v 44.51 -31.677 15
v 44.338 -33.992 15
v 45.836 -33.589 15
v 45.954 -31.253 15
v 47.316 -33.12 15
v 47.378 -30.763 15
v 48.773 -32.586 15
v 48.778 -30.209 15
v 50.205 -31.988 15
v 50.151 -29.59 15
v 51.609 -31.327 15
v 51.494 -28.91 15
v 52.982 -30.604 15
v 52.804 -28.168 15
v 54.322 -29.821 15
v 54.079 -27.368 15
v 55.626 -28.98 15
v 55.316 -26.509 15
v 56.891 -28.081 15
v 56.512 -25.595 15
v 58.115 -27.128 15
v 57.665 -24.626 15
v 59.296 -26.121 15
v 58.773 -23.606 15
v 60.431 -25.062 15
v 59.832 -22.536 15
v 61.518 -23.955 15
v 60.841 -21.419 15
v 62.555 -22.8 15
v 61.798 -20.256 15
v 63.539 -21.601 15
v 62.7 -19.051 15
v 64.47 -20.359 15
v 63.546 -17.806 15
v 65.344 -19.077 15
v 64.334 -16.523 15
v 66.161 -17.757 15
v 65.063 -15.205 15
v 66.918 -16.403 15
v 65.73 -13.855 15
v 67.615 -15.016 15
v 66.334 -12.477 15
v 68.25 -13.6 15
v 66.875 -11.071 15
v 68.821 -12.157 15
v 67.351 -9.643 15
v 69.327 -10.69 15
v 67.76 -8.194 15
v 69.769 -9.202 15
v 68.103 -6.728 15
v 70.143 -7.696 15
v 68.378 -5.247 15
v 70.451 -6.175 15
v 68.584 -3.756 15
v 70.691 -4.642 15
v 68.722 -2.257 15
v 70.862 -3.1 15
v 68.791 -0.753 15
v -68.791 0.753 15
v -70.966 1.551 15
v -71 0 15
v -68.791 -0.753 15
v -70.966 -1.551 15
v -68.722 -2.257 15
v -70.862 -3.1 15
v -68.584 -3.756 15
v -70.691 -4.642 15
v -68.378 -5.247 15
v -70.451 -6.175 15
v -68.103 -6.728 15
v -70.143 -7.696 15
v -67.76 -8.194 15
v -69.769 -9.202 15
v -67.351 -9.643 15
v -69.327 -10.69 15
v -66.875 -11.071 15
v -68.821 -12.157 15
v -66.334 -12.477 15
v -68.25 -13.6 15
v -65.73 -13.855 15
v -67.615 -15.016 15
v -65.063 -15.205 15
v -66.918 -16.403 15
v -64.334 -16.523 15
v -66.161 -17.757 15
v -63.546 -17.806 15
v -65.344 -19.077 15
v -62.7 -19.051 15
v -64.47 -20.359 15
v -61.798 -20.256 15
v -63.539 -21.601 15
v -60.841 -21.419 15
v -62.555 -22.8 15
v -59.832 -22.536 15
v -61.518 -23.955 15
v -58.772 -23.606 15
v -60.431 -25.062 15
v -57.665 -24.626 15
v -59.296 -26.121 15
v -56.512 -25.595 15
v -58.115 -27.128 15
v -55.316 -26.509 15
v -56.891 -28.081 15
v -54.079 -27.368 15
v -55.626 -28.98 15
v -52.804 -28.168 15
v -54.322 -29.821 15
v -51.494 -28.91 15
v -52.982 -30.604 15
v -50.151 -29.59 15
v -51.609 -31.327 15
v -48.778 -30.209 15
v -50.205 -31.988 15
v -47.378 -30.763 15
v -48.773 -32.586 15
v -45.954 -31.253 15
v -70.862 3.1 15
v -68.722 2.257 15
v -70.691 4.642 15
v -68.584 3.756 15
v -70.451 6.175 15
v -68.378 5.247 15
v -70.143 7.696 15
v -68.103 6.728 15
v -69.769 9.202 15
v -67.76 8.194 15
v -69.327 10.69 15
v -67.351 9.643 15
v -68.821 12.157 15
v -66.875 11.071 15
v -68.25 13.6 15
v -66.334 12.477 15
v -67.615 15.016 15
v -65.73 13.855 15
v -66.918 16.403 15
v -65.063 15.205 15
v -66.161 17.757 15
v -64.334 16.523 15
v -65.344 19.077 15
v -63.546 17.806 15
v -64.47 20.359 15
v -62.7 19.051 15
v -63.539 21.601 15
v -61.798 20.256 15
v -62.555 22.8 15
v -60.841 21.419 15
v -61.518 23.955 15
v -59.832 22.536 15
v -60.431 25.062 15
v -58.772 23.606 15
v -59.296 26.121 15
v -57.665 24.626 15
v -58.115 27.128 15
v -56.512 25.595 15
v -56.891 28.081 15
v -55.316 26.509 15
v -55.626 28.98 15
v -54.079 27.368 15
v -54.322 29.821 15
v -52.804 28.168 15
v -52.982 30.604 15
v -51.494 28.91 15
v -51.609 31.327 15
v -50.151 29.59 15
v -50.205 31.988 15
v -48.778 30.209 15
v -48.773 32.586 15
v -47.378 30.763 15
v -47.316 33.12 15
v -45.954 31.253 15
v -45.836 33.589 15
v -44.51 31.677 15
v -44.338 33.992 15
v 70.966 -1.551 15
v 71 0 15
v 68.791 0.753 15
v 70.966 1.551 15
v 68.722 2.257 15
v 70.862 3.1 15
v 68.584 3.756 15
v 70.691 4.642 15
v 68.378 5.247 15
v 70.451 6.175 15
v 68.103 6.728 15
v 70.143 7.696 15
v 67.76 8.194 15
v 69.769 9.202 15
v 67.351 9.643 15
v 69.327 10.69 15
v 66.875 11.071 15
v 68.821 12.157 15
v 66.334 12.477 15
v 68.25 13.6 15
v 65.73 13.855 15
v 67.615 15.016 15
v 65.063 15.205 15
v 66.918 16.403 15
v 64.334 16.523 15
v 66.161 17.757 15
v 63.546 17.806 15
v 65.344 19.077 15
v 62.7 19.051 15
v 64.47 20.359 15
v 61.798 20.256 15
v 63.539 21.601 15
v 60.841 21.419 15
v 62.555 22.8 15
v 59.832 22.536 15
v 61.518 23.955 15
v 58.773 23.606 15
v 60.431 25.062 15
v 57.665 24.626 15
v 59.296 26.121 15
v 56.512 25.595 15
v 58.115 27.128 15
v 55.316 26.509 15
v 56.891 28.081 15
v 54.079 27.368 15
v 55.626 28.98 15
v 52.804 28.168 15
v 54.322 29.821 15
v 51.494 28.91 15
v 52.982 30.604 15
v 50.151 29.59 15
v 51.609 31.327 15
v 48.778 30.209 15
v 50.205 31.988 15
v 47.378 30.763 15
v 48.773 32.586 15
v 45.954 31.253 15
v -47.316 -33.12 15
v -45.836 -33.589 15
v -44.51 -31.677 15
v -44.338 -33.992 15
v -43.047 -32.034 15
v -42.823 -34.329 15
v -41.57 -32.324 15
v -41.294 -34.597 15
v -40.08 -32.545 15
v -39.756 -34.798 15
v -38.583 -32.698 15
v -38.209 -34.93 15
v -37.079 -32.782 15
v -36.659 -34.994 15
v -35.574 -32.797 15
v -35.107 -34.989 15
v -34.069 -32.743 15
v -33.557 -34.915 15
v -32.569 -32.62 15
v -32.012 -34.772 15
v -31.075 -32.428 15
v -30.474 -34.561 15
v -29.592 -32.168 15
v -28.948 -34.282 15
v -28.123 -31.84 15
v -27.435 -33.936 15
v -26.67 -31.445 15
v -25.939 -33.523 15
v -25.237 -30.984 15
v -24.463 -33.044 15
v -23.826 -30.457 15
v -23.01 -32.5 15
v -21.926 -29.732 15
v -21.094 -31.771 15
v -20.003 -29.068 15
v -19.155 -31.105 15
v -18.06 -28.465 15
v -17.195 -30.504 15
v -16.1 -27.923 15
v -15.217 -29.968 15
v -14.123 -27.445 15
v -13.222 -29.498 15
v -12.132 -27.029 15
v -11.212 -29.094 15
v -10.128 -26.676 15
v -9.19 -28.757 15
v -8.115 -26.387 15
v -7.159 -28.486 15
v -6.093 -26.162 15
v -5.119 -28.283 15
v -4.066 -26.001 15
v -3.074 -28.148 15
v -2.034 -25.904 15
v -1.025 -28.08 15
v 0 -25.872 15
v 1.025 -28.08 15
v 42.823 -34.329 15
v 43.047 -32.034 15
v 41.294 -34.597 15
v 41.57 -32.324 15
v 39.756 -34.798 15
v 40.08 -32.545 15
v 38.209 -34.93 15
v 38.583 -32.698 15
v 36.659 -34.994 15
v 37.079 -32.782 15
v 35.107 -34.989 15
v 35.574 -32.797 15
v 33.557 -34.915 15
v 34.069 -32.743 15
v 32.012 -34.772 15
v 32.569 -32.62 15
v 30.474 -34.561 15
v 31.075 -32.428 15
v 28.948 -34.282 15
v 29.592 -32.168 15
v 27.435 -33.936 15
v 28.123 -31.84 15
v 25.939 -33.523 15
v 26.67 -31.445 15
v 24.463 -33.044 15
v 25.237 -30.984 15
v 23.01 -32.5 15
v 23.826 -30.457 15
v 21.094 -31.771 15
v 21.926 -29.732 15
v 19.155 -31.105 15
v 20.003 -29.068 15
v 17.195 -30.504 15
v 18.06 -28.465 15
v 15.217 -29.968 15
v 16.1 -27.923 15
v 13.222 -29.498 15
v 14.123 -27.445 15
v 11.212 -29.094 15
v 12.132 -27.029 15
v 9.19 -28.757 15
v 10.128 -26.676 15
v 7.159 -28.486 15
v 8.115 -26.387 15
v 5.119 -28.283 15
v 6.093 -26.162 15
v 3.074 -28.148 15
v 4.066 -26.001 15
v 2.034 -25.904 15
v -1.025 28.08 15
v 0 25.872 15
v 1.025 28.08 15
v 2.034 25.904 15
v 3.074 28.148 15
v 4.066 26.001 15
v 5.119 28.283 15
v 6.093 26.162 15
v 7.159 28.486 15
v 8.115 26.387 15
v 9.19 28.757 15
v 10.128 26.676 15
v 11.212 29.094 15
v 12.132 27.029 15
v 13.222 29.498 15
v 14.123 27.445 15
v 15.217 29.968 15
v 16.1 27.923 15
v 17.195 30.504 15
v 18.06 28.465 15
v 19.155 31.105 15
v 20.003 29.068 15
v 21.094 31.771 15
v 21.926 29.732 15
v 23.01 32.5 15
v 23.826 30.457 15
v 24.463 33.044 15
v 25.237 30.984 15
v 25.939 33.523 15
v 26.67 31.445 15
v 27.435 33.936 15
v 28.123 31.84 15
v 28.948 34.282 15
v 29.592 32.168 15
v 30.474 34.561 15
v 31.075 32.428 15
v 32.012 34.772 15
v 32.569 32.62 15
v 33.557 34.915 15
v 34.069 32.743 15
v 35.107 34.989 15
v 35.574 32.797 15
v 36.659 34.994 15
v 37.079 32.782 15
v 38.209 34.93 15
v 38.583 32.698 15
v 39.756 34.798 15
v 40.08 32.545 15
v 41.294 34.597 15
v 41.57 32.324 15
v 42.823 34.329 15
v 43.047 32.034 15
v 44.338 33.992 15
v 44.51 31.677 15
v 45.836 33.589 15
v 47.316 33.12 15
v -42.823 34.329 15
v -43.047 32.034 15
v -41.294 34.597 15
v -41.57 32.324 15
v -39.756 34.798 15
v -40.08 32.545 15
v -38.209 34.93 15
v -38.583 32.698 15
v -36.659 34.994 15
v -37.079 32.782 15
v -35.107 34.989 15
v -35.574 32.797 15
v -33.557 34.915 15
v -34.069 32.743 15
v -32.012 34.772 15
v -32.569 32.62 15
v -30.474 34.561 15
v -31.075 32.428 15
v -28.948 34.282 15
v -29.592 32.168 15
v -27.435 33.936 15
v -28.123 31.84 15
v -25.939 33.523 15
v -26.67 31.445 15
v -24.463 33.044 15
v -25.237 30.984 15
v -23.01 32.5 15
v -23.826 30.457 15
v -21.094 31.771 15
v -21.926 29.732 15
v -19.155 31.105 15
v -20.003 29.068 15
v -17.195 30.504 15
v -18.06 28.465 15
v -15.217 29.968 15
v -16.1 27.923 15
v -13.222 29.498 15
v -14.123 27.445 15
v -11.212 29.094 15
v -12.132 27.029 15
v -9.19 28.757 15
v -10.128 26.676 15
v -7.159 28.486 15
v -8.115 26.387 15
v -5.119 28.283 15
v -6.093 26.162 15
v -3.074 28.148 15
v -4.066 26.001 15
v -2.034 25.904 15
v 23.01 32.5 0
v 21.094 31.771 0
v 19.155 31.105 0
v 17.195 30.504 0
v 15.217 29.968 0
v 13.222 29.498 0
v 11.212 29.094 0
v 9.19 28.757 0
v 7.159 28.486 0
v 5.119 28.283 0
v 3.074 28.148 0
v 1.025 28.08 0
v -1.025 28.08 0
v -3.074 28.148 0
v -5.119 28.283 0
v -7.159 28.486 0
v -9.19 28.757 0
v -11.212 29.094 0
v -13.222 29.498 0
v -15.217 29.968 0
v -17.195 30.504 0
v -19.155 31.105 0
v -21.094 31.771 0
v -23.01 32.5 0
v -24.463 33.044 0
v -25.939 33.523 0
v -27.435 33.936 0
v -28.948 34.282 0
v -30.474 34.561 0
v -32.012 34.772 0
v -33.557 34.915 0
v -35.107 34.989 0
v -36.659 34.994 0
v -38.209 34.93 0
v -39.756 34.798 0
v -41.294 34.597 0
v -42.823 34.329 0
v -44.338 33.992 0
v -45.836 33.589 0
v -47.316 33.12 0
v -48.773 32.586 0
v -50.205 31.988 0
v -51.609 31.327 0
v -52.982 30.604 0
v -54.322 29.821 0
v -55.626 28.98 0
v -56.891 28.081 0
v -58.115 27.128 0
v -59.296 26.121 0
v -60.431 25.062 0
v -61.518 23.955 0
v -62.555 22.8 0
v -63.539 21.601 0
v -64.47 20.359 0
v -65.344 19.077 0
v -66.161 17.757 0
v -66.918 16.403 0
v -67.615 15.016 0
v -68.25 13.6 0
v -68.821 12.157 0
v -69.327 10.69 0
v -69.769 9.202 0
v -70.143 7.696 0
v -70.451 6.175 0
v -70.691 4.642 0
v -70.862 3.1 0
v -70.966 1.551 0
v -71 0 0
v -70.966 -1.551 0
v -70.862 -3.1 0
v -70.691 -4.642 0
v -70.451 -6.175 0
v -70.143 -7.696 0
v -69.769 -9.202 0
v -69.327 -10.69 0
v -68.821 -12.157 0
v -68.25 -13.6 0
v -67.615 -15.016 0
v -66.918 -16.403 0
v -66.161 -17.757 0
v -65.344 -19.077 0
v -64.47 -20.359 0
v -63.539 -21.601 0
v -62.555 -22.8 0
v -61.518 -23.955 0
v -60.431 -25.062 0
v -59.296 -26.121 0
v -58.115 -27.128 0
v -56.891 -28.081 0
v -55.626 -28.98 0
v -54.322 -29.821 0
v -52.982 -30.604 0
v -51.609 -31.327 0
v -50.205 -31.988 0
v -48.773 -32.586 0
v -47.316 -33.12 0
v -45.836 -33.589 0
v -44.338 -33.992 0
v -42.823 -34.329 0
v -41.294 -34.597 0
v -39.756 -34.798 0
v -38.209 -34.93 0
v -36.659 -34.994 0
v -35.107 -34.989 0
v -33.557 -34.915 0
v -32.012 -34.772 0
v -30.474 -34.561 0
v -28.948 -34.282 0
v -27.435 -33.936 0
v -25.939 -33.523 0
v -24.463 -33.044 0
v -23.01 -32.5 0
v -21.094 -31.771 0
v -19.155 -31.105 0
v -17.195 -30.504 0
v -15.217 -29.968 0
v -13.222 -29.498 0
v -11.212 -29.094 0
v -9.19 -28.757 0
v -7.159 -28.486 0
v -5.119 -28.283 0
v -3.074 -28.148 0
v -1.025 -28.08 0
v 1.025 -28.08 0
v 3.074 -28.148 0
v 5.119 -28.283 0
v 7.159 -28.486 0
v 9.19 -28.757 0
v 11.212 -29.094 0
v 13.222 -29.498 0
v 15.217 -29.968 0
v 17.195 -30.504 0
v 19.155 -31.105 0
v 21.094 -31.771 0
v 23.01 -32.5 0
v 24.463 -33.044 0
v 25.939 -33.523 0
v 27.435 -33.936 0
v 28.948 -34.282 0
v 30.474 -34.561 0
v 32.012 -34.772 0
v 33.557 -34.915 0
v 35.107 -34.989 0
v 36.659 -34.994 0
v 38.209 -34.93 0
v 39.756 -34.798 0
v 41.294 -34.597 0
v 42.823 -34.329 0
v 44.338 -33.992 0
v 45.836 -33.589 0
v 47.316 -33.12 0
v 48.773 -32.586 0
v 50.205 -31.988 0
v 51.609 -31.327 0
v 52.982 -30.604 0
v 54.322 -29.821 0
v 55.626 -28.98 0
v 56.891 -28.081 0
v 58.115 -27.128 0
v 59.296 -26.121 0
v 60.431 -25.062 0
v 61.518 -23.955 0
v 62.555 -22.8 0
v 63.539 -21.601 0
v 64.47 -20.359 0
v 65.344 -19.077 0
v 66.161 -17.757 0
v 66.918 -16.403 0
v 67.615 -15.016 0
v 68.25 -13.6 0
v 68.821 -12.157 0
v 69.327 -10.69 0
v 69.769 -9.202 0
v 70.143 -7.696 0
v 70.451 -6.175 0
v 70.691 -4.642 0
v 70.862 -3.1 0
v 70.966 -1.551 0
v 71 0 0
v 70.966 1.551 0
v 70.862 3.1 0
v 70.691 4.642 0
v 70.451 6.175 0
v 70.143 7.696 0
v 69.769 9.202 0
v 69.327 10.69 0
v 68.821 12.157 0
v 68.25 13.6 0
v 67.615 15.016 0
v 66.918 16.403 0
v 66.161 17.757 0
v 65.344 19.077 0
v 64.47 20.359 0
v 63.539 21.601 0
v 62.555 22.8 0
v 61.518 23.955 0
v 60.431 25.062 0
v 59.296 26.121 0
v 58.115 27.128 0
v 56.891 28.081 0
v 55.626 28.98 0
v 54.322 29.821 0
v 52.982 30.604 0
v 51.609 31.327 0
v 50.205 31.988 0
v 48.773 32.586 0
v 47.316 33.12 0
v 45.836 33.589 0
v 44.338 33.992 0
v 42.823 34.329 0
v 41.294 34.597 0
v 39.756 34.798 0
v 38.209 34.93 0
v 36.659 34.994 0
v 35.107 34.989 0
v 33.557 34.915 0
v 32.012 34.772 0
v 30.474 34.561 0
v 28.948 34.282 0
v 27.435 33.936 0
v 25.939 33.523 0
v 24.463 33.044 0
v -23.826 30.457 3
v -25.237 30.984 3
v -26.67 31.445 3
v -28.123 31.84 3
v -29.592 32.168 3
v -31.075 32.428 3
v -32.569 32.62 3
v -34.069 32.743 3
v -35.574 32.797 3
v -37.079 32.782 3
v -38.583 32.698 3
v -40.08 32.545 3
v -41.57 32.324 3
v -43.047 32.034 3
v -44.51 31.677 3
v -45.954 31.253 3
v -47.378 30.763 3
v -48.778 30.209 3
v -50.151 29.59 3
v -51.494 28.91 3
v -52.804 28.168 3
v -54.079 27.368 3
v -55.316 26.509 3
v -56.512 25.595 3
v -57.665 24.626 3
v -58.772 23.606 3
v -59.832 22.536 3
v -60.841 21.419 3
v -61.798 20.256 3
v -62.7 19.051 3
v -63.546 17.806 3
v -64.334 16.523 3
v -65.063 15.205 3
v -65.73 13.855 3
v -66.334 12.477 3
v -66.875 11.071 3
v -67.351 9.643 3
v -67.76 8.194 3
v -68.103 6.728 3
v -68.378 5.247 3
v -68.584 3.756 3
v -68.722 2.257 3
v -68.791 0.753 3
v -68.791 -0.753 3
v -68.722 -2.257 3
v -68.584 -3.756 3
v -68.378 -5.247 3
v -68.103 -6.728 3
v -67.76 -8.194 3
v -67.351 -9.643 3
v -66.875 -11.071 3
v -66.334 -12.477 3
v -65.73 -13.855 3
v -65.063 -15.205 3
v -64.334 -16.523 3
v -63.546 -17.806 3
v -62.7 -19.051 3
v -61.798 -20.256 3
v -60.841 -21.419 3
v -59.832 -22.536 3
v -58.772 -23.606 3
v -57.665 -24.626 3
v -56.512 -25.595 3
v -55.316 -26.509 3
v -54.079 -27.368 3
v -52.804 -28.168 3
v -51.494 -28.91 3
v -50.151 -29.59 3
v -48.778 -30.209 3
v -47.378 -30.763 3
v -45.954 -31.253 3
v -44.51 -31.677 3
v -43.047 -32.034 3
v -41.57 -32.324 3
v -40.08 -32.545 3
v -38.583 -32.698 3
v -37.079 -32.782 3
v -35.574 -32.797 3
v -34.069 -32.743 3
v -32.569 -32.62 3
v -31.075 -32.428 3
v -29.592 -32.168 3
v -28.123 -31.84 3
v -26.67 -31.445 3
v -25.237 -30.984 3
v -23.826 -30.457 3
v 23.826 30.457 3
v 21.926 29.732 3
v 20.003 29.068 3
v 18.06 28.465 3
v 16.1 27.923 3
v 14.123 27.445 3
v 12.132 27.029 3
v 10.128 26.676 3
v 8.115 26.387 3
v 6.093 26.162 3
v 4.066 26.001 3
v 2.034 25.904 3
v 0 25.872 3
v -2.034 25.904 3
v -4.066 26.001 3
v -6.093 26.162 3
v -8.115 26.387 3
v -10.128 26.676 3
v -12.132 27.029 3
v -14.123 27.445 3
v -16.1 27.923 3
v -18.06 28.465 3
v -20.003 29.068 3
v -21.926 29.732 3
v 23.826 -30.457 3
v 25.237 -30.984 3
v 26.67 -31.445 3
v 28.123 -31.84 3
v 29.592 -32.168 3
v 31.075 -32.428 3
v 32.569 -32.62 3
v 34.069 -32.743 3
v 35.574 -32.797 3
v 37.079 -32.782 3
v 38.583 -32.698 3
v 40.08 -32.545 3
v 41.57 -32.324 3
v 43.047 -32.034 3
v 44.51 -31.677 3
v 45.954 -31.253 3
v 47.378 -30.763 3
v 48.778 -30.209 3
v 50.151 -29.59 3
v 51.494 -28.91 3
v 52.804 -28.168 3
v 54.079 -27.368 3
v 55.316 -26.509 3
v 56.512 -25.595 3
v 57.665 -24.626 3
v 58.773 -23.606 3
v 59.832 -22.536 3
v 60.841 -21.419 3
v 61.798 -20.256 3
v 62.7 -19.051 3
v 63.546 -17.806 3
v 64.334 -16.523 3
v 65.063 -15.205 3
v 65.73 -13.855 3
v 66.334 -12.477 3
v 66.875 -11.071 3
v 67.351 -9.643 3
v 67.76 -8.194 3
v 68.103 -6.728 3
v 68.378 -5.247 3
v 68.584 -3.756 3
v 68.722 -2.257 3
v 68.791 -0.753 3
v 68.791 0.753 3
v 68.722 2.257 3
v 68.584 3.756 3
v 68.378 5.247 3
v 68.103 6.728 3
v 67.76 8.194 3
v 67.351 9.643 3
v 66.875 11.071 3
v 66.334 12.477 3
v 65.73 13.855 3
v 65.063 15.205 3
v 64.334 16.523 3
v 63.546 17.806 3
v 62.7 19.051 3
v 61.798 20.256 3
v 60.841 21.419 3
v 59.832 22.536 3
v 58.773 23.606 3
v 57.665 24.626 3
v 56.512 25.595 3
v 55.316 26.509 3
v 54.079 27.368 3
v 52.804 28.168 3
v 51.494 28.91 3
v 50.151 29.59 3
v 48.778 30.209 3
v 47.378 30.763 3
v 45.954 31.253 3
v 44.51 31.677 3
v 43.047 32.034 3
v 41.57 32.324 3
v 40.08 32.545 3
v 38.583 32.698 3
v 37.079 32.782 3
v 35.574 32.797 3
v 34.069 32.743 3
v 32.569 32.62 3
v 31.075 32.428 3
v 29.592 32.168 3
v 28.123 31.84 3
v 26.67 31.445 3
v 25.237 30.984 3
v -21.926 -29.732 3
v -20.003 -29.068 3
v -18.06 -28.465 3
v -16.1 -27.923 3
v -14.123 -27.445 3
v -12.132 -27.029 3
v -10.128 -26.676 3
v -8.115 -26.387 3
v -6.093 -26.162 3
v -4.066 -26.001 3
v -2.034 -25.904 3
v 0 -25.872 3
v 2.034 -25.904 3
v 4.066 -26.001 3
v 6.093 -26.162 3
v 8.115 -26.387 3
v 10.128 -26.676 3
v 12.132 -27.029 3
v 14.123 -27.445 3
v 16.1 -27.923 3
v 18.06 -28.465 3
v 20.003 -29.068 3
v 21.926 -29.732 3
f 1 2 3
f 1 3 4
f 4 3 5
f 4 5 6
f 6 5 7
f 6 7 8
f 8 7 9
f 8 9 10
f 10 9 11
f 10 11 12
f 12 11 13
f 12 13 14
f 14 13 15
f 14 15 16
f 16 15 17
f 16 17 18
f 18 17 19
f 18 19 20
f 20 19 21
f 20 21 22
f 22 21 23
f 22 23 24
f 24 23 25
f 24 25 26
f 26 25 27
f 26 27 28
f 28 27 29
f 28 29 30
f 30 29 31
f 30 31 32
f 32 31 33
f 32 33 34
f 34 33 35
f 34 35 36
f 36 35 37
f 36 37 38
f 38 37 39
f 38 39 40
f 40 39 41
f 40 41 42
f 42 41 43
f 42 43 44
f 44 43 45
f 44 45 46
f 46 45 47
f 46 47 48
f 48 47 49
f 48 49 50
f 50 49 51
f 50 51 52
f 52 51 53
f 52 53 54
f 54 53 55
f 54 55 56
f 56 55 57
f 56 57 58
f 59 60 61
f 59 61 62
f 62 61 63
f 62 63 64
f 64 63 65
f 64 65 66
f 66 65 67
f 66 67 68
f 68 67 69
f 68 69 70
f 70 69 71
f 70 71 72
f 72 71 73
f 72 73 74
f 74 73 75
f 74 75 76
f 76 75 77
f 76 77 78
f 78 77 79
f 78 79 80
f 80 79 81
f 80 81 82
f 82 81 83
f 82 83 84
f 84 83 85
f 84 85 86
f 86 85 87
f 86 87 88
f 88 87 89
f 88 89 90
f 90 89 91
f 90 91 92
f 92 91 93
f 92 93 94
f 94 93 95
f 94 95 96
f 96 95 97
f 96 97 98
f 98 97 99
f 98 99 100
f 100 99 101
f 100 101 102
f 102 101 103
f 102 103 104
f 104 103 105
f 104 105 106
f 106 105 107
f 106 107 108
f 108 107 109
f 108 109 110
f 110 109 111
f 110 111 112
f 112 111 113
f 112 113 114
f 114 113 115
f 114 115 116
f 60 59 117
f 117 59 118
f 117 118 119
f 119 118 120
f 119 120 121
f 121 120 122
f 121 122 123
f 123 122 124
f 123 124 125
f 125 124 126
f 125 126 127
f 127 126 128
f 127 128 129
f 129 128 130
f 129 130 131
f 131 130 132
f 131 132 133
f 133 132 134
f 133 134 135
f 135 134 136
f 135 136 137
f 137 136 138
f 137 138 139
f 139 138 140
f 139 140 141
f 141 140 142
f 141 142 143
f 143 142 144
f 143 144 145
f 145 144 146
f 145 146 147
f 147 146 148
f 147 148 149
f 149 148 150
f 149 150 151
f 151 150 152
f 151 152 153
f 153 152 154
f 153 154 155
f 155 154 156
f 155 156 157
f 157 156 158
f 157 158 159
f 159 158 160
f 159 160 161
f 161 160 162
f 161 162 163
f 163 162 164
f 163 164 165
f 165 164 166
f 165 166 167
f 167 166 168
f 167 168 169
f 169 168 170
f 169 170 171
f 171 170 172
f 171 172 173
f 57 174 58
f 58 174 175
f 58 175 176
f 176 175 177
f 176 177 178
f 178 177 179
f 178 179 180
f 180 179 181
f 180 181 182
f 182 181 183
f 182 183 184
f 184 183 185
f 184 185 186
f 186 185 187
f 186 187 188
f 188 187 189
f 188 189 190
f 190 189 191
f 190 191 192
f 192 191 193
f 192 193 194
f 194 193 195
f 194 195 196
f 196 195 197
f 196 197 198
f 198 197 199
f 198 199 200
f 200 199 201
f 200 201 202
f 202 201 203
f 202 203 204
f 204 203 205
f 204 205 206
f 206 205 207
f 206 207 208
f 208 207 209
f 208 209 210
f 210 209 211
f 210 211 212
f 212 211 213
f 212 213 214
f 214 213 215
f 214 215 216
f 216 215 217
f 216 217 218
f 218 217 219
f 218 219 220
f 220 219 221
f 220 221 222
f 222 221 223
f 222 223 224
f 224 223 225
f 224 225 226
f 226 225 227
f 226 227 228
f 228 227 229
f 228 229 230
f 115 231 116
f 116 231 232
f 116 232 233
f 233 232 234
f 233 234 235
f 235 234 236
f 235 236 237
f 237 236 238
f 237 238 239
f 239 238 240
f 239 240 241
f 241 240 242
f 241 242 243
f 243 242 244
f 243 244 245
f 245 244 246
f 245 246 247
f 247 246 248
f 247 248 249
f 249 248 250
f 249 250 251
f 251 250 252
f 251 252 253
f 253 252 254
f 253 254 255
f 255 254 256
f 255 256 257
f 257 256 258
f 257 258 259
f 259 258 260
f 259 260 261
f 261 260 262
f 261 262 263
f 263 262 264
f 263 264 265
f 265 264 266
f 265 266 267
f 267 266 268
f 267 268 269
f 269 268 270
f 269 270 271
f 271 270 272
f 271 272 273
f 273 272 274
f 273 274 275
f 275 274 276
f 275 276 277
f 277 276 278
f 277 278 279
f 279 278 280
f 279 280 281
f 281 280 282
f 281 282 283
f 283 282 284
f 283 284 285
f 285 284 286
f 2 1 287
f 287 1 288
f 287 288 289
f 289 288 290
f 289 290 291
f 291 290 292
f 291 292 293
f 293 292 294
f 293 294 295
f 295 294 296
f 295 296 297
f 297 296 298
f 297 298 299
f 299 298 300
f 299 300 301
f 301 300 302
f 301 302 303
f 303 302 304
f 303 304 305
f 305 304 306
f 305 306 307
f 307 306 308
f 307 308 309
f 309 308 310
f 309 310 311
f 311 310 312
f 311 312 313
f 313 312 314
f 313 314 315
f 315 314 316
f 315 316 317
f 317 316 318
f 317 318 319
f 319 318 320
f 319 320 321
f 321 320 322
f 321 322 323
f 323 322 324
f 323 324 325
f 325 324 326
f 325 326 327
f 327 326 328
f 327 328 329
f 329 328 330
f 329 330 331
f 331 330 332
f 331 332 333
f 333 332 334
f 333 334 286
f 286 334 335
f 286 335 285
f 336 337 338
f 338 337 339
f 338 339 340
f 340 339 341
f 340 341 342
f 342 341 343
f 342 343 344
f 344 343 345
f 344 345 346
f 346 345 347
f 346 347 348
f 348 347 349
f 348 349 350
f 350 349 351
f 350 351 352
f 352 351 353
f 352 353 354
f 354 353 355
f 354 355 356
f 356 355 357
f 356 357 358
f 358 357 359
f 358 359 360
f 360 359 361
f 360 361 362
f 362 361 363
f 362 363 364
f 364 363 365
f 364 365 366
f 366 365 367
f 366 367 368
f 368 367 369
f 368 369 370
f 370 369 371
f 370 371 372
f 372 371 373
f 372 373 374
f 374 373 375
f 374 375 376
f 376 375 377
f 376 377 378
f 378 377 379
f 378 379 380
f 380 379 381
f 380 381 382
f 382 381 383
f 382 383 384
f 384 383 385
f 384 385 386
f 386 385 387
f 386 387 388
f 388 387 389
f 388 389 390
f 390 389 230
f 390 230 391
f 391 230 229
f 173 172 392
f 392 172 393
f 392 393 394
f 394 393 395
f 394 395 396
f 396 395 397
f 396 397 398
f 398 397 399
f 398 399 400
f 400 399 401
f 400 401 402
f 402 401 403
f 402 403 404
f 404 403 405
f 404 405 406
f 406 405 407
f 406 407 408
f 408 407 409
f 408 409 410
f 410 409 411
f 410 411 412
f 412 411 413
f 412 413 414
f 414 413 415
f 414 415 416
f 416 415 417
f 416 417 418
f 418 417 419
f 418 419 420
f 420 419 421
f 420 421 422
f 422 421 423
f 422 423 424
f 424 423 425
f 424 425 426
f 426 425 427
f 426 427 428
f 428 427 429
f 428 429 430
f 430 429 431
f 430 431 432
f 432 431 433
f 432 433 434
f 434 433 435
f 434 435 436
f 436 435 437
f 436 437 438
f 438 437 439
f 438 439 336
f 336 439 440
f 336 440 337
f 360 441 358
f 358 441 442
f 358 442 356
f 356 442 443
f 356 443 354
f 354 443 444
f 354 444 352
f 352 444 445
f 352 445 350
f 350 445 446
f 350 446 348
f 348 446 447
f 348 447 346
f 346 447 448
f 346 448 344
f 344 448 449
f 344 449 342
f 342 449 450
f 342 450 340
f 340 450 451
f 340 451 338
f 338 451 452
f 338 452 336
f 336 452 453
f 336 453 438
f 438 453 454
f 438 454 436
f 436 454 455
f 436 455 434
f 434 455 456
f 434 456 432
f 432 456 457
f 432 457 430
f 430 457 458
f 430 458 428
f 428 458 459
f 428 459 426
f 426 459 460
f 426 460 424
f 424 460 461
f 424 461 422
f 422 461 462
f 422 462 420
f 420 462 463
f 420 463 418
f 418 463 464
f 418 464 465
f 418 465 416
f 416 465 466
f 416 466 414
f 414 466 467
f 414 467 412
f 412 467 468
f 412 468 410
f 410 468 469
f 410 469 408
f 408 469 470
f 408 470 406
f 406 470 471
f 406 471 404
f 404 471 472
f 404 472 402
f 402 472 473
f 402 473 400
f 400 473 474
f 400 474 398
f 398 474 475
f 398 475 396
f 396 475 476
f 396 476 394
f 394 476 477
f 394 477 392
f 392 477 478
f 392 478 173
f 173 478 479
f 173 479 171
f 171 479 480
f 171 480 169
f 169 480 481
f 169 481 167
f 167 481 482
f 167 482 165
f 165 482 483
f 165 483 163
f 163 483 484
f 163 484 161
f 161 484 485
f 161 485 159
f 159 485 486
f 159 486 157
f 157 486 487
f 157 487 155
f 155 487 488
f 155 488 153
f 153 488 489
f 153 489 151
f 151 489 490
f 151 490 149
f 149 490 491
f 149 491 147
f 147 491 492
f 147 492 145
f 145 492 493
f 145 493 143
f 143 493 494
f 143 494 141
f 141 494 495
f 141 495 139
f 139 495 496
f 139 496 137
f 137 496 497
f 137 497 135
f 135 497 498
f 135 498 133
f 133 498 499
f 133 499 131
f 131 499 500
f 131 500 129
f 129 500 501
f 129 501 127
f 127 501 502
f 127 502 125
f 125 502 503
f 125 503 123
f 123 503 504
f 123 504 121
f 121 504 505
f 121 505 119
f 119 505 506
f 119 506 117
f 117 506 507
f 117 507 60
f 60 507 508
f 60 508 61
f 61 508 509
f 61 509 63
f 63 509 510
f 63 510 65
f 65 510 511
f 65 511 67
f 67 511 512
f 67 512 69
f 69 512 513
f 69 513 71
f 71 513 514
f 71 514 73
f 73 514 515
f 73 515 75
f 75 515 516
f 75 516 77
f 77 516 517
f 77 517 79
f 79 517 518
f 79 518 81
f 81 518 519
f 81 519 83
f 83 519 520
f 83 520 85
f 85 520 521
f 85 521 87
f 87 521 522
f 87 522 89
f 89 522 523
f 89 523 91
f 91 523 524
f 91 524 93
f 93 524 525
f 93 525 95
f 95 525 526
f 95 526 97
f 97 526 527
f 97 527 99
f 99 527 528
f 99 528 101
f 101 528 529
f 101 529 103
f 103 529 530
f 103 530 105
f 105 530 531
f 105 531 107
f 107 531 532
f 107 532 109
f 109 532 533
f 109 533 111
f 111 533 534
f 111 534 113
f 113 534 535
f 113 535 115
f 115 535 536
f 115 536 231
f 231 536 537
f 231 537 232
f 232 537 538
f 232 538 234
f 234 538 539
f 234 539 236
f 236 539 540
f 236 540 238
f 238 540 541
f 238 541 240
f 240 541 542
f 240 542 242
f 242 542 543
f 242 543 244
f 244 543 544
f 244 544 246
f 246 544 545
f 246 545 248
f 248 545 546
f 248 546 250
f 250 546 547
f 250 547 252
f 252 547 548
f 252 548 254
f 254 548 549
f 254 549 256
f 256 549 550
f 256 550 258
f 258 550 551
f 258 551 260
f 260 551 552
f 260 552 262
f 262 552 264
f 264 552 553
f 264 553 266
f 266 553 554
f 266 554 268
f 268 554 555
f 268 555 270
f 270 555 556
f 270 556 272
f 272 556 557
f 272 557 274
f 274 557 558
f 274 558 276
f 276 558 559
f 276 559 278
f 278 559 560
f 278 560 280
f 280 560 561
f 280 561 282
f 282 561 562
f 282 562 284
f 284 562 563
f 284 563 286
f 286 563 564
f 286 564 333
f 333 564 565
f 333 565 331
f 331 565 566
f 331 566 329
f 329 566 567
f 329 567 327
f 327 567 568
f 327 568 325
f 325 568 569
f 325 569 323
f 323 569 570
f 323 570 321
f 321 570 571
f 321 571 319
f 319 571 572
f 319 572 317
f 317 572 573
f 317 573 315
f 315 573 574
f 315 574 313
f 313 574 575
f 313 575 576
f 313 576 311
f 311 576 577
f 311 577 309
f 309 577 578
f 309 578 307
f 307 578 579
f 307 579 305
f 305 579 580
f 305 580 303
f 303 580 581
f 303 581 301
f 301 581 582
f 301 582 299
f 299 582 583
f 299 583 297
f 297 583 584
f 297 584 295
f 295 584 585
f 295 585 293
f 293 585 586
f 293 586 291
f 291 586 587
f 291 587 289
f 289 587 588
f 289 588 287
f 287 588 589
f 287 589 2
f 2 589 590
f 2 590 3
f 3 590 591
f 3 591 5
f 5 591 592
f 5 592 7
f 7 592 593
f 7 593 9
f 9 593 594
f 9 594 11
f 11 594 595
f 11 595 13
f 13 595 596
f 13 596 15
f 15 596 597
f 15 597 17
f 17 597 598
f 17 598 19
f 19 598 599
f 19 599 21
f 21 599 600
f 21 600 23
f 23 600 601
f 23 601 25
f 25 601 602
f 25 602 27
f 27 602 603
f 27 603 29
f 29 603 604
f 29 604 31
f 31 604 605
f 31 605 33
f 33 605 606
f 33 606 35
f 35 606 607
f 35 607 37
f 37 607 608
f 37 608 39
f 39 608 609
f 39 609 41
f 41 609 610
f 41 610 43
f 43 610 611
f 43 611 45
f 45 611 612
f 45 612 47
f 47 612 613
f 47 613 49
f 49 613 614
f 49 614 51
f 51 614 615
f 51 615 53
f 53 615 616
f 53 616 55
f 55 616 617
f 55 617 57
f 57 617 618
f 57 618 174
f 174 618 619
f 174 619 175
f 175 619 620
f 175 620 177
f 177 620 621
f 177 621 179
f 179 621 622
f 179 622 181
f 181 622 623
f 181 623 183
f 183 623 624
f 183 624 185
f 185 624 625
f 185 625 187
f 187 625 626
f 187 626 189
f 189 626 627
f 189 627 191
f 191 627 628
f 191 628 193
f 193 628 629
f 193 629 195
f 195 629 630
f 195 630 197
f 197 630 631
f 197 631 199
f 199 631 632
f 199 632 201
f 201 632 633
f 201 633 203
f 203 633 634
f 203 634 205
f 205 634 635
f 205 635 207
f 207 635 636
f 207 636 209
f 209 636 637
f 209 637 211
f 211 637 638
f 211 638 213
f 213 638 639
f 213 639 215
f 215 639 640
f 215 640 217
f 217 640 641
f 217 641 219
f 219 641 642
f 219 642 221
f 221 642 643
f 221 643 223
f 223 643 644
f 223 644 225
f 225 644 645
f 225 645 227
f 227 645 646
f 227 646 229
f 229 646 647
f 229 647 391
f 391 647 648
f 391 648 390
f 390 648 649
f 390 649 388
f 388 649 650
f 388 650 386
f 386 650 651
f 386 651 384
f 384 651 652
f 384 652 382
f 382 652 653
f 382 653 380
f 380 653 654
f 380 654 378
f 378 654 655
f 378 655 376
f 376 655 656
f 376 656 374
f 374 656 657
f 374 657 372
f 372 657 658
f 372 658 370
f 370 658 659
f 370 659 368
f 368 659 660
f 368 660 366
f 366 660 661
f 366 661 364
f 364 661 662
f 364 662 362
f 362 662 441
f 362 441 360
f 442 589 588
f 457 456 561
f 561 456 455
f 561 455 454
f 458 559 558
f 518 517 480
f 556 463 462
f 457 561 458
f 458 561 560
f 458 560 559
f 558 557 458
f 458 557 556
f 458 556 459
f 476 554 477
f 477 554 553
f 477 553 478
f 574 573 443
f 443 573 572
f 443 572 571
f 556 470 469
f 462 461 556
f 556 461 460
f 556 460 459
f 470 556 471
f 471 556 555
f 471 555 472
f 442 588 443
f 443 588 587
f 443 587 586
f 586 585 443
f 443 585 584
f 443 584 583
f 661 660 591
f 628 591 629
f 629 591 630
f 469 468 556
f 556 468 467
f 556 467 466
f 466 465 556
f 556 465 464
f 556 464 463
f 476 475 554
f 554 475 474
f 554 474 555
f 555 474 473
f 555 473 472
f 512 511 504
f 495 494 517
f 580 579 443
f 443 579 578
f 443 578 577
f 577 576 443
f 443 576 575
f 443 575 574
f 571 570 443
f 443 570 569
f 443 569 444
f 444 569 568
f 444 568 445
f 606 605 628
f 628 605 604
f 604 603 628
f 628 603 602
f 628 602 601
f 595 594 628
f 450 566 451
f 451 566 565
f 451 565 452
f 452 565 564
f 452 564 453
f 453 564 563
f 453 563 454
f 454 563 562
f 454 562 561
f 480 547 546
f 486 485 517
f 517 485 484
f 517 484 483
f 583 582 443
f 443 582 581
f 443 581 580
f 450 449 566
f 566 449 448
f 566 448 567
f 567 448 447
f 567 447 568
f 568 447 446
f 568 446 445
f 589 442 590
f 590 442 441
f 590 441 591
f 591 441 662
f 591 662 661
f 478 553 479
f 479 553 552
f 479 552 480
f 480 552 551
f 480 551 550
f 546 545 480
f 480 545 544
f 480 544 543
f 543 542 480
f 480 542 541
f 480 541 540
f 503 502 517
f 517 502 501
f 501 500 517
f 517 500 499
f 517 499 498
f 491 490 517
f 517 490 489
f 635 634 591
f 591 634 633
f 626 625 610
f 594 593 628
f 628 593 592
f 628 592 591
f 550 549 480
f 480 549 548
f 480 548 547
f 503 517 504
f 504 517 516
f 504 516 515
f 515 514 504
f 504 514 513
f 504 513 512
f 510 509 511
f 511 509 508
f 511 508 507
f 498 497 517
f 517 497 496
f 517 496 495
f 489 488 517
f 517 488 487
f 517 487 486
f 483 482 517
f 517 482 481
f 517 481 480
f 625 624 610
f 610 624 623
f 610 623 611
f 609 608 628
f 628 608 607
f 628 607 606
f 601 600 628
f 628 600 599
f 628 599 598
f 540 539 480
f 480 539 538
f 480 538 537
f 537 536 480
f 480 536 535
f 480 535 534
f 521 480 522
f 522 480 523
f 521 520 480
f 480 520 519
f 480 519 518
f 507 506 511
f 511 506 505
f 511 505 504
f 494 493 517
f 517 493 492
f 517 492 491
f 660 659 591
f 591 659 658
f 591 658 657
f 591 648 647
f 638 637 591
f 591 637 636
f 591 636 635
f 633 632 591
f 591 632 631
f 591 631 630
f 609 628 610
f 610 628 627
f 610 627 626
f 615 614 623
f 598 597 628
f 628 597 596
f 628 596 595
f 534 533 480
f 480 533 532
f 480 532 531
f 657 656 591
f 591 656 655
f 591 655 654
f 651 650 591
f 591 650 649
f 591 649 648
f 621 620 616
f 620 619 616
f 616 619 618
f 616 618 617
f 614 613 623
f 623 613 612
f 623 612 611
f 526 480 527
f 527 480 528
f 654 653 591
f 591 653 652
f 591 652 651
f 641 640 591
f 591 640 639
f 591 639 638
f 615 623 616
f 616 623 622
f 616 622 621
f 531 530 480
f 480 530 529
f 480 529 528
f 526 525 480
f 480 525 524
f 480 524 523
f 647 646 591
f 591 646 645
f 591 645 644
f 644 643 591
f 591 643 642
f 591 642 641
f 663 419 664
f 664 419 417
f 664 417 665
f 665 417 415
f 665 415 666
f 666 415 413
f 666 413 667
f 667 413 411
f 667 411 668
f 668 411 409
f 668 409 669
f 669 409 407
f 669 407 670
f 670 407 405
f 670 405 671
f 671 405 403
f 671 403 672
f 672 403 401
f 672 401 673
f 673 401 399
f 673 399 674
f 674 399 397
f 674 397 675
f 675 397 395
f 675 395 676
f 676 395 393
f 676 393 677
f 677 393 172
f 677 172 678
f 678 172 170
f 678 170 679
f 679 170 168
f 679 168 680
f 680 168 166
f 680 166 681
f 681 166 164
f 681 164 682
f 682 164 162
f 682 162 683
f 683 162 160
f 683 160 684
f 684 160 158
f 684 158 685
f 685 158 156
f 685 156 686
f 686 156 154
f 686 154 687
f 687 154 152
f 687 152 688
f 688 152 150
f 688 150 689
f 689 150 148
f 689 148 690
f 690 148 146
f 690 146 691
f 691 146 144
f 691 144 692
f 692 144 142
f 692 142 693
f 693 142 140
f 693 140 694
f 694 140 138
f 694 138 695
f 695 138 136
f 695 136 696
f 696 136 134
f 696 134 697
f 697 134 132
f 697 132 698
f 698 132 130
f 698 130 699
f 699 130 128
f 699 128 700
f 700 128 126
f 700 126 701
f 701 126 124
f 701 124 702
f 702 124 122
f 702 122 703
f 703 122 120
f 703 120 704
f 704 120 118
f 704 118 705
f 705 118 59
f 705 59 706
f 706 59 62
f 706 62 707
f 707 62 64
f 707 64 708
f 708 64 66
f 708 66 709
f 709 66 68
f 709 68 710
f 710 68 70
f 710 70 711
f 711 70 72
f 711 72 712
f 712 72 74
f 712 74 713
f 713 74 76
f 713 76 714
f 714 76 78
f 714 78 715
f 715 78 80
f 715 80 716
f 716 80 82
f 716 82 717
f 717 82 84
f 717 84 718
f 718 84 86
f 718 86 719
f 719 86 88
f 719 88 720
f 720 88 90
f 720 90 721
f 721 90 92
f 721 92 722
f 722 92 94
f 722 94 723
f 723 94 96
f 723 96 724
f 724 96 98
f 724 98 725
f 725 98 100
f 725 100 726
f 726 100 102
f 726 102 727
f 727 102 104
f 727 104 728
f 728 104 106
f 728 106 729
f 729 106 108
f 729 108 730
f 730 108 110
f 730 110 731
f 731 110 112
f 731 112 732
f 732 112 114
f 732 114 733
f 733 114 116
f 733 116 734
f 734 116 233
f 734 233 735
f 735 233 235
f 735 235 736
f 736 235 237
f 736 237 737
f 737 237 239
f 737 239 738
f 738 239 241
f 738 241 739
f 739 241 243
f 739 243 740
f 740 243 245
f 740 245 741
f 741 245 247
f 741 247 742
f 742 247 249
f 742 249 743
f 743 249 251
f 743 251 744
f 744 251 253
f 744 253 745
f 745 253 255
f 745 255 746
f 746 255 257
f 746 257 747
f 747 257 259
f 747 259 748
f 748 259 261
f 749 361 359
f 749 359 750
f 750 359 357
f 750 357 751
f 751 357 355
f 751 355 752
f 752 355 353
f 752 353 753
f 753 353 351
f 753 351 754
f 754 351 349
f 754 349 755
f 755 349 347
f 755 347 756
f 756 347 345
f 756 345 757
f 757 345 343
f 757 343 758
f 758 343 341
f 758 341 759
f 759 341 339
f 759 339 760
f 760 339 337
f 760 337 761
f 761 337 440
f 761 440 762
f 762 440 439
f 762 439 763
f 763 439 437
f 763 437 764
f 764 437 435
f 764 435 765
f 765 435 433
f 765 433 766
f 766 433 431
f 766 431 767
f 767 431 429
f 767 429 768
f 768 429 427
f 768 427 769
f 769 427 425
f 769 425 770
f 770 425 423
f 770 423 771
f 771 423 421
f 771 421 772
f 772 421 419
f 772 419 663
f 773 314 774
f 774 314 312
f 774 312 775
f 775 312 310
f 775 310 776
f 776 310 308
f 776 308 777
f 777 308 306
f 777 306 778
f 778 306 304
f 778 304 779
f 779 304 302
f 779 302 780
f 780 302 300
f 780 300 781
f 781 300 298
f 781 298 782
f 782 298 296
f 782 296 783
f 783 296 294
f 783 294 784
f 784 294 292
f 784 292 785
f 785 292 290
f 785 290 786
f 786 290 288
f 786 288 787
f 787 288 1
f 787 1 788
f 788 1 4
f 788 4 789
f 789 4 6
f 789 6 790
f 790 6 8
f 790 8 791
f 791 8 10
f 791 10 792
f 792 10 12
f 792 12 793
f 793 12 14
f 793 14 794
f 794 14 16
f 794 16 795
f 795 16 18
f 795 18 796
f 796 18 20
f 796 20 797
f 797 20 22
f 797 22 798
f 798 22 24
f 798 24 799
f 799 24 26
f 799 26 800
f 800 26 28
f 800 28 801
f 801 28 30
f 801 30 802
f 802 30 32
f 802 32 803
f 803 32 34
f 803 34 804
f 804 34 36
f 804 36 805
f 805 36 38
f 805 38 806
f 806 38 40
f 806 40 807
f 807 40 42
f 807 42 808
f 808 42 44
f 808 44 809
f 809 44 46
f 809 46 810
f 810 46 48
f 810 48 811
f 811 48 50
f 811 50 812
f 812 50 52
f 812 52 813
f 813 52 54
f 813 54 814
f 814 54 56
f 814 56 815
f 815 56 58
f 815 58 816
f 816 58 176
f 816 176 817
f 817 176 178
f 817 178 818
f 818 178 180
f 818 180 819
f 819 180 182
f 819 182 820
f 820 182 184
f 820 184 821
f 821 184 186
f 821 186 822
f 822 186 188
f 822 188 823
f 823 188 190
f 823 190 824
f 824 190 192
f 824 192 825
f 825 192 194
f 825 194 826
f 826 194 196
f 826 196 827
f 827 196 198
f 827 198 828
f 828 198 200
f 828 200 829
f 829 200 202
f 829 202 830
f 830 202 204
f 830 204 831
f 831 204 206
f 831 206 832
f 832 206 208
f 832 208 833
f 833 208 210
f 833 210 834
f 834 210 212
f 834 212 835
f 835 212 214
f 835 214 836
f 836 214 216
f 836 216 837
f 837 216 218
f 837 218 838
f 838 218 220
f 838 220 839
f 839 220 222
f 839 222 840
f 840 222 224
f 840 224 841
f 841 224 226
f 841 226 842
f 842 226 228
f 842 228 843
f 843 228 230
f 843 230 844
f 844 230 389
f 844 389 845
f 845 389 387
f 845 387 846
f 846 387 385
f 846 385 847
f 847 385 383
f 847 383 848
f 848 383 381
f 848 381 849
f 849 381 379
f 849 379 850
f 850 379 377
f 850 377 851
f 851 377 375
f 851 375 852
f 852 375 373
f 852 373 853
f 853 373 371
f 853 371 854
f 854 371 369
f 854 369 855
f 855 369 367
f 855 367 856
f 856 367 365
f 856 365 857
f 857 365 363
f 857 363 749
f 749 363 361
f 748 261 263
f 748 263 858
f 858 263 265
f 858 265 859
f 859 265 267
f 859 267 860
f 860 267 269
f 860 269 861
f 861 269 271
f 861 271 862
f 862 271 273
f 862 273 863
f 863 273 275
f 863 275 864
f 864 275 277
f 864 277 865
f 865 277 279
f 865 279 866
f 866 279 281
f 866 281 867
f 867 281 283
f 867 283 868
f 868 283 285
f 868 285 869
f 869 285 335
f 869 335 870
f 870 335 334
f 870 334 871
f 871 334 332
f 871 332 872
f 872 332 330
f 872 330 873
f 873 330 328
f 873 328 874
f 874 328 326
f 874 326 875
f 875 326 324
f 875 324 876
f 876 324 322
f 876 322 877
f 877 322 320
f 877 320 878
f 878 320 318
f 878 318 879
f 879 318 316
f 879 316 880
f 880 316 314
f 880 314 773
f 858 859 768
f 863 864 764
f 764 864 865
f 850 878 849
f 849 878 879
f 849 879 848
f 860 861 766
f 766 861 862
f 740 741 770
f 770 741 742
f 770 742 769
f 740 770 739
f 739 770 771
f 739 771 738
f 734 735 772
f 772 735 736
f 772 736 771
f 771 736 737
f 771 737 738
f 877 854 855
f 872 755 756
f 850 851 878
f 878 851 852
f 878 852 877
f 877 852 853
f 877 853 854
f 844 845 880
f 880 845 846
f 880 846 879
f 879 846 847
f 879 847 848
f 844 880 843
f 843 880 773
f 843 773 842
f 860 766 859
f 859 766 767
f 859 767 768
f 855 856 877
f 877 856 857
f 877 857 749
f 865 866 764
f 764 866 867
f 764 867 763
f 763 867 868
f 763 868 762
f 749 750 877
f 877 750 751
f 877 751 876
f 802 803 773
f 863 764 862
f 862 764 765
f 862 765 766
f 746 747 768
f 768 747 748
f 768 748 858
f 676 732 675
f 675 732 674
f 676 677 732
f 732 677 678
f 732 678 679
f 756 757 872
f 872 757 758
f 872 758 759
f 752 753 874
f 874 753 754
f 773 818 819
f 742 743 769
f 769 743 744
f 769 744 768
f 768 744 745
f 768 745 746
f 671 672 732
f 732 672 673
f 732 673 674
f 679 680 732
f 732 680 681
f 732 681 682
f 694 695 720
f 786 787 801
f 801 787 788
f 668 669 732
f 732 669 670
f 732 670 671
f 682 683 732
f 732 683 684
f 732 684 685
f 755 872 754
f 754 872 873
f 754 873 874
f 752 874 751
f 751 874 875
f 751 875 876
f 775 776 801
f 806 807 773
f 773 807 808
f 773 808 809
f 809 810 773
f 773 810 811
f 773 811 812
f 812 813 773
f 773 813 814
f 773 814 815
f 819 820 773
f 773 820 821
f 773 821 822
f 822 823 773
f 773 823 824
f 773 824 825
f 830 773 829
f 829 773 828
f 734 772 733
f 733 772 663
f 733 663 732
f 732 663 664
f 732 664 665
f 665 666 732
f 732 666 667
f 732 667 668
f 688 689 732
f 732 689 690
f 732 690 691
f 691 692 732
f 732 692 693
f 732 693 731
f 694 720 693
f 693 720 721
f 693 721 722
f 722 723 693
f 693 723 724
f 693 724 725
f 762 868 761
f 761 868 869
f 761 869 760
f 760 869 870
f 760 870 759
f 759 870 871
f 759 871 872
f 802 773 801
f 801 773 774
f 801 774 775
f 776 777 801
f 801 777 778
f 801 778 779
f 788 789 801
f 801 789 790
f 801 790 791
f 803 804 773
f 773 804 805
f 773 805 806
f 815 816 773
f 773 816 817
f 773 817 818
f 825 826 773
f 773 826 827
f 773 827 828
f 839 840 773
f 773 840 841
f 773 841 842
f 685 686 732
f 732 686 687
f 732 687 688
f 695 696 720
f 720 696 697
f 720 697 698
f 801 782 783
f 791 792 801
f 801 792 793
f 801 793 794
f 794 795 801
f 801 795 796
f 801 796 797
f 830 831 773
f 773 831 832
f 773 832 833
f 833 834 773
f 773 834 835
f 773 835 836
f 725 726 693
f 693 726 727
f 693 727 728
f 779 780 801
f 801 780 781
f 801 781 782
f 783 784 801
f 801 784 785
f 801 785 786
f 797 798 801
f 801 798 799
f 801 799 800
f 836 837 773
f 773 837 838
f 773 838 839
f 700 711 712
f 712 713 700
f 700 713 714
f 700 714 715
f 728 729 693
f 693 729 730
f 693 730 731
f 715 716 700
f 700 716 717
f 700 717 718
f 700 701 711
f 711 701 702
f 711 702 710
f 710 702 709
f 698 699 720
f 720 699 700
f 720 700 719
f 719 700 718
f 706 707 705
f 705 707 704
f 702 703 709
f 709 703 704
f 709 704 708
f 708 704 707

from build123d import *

# Parameters (mm, degrees)
BOSS_EXTRUDE1_DEPTH = 15
CUT_EXTRUDE2_DEPTH  = 12


with BuildPart() as part:
    # Sketch1 → Boss-Extrude1 (new body)
    with BuildSketch(Plane.XY):
        with BuildLine():
            ThreePointArc((-23.009618943, 32.5), (-71, 0), (-23.009618943, -32.5))
            ThreePointArc((-23.009618943, -32.5), (0, -28.07179677), (23.009618943, -32.5))
            ThreePointArc((23.009618943, -32.5), (71, 0), (23.009618943, 32.5))
            ThreePointArc((23.009618943, 32.5), (0, 28.07179677), (-23.009618943, 32.5))
        make_face()
    extrude(amount=BOSS_EXTRUDE1_DEPTH)

    # Sketch2 → Cut-Extrude2 (cut)
    with BuildSketch(Plane.XY.offset(15)):
        with BuildLine():
            ThreePointArc((-23.826157181, 30.457142857), (0, 25.87179677), (23.826157181, 30.457142857))
            ThreePointArc((23.826157181, 30.457142857), (68.8, 0), (23.826157181, -30.457142857))
            ThreePointArc((23.826157181, -30.457142857), (0, -25.87179677), (-23.826157181, -30.457142857))
            ThreePointArc((-23.826157181, -30.457142857), (-68.8, 0), (-23.826157181, 30.457142857))
        make_face()
    extrude(amount=-CUT_EXTRUDE2_DEPTH, mode=Mode.SUBTRACT)


solid = part.part
